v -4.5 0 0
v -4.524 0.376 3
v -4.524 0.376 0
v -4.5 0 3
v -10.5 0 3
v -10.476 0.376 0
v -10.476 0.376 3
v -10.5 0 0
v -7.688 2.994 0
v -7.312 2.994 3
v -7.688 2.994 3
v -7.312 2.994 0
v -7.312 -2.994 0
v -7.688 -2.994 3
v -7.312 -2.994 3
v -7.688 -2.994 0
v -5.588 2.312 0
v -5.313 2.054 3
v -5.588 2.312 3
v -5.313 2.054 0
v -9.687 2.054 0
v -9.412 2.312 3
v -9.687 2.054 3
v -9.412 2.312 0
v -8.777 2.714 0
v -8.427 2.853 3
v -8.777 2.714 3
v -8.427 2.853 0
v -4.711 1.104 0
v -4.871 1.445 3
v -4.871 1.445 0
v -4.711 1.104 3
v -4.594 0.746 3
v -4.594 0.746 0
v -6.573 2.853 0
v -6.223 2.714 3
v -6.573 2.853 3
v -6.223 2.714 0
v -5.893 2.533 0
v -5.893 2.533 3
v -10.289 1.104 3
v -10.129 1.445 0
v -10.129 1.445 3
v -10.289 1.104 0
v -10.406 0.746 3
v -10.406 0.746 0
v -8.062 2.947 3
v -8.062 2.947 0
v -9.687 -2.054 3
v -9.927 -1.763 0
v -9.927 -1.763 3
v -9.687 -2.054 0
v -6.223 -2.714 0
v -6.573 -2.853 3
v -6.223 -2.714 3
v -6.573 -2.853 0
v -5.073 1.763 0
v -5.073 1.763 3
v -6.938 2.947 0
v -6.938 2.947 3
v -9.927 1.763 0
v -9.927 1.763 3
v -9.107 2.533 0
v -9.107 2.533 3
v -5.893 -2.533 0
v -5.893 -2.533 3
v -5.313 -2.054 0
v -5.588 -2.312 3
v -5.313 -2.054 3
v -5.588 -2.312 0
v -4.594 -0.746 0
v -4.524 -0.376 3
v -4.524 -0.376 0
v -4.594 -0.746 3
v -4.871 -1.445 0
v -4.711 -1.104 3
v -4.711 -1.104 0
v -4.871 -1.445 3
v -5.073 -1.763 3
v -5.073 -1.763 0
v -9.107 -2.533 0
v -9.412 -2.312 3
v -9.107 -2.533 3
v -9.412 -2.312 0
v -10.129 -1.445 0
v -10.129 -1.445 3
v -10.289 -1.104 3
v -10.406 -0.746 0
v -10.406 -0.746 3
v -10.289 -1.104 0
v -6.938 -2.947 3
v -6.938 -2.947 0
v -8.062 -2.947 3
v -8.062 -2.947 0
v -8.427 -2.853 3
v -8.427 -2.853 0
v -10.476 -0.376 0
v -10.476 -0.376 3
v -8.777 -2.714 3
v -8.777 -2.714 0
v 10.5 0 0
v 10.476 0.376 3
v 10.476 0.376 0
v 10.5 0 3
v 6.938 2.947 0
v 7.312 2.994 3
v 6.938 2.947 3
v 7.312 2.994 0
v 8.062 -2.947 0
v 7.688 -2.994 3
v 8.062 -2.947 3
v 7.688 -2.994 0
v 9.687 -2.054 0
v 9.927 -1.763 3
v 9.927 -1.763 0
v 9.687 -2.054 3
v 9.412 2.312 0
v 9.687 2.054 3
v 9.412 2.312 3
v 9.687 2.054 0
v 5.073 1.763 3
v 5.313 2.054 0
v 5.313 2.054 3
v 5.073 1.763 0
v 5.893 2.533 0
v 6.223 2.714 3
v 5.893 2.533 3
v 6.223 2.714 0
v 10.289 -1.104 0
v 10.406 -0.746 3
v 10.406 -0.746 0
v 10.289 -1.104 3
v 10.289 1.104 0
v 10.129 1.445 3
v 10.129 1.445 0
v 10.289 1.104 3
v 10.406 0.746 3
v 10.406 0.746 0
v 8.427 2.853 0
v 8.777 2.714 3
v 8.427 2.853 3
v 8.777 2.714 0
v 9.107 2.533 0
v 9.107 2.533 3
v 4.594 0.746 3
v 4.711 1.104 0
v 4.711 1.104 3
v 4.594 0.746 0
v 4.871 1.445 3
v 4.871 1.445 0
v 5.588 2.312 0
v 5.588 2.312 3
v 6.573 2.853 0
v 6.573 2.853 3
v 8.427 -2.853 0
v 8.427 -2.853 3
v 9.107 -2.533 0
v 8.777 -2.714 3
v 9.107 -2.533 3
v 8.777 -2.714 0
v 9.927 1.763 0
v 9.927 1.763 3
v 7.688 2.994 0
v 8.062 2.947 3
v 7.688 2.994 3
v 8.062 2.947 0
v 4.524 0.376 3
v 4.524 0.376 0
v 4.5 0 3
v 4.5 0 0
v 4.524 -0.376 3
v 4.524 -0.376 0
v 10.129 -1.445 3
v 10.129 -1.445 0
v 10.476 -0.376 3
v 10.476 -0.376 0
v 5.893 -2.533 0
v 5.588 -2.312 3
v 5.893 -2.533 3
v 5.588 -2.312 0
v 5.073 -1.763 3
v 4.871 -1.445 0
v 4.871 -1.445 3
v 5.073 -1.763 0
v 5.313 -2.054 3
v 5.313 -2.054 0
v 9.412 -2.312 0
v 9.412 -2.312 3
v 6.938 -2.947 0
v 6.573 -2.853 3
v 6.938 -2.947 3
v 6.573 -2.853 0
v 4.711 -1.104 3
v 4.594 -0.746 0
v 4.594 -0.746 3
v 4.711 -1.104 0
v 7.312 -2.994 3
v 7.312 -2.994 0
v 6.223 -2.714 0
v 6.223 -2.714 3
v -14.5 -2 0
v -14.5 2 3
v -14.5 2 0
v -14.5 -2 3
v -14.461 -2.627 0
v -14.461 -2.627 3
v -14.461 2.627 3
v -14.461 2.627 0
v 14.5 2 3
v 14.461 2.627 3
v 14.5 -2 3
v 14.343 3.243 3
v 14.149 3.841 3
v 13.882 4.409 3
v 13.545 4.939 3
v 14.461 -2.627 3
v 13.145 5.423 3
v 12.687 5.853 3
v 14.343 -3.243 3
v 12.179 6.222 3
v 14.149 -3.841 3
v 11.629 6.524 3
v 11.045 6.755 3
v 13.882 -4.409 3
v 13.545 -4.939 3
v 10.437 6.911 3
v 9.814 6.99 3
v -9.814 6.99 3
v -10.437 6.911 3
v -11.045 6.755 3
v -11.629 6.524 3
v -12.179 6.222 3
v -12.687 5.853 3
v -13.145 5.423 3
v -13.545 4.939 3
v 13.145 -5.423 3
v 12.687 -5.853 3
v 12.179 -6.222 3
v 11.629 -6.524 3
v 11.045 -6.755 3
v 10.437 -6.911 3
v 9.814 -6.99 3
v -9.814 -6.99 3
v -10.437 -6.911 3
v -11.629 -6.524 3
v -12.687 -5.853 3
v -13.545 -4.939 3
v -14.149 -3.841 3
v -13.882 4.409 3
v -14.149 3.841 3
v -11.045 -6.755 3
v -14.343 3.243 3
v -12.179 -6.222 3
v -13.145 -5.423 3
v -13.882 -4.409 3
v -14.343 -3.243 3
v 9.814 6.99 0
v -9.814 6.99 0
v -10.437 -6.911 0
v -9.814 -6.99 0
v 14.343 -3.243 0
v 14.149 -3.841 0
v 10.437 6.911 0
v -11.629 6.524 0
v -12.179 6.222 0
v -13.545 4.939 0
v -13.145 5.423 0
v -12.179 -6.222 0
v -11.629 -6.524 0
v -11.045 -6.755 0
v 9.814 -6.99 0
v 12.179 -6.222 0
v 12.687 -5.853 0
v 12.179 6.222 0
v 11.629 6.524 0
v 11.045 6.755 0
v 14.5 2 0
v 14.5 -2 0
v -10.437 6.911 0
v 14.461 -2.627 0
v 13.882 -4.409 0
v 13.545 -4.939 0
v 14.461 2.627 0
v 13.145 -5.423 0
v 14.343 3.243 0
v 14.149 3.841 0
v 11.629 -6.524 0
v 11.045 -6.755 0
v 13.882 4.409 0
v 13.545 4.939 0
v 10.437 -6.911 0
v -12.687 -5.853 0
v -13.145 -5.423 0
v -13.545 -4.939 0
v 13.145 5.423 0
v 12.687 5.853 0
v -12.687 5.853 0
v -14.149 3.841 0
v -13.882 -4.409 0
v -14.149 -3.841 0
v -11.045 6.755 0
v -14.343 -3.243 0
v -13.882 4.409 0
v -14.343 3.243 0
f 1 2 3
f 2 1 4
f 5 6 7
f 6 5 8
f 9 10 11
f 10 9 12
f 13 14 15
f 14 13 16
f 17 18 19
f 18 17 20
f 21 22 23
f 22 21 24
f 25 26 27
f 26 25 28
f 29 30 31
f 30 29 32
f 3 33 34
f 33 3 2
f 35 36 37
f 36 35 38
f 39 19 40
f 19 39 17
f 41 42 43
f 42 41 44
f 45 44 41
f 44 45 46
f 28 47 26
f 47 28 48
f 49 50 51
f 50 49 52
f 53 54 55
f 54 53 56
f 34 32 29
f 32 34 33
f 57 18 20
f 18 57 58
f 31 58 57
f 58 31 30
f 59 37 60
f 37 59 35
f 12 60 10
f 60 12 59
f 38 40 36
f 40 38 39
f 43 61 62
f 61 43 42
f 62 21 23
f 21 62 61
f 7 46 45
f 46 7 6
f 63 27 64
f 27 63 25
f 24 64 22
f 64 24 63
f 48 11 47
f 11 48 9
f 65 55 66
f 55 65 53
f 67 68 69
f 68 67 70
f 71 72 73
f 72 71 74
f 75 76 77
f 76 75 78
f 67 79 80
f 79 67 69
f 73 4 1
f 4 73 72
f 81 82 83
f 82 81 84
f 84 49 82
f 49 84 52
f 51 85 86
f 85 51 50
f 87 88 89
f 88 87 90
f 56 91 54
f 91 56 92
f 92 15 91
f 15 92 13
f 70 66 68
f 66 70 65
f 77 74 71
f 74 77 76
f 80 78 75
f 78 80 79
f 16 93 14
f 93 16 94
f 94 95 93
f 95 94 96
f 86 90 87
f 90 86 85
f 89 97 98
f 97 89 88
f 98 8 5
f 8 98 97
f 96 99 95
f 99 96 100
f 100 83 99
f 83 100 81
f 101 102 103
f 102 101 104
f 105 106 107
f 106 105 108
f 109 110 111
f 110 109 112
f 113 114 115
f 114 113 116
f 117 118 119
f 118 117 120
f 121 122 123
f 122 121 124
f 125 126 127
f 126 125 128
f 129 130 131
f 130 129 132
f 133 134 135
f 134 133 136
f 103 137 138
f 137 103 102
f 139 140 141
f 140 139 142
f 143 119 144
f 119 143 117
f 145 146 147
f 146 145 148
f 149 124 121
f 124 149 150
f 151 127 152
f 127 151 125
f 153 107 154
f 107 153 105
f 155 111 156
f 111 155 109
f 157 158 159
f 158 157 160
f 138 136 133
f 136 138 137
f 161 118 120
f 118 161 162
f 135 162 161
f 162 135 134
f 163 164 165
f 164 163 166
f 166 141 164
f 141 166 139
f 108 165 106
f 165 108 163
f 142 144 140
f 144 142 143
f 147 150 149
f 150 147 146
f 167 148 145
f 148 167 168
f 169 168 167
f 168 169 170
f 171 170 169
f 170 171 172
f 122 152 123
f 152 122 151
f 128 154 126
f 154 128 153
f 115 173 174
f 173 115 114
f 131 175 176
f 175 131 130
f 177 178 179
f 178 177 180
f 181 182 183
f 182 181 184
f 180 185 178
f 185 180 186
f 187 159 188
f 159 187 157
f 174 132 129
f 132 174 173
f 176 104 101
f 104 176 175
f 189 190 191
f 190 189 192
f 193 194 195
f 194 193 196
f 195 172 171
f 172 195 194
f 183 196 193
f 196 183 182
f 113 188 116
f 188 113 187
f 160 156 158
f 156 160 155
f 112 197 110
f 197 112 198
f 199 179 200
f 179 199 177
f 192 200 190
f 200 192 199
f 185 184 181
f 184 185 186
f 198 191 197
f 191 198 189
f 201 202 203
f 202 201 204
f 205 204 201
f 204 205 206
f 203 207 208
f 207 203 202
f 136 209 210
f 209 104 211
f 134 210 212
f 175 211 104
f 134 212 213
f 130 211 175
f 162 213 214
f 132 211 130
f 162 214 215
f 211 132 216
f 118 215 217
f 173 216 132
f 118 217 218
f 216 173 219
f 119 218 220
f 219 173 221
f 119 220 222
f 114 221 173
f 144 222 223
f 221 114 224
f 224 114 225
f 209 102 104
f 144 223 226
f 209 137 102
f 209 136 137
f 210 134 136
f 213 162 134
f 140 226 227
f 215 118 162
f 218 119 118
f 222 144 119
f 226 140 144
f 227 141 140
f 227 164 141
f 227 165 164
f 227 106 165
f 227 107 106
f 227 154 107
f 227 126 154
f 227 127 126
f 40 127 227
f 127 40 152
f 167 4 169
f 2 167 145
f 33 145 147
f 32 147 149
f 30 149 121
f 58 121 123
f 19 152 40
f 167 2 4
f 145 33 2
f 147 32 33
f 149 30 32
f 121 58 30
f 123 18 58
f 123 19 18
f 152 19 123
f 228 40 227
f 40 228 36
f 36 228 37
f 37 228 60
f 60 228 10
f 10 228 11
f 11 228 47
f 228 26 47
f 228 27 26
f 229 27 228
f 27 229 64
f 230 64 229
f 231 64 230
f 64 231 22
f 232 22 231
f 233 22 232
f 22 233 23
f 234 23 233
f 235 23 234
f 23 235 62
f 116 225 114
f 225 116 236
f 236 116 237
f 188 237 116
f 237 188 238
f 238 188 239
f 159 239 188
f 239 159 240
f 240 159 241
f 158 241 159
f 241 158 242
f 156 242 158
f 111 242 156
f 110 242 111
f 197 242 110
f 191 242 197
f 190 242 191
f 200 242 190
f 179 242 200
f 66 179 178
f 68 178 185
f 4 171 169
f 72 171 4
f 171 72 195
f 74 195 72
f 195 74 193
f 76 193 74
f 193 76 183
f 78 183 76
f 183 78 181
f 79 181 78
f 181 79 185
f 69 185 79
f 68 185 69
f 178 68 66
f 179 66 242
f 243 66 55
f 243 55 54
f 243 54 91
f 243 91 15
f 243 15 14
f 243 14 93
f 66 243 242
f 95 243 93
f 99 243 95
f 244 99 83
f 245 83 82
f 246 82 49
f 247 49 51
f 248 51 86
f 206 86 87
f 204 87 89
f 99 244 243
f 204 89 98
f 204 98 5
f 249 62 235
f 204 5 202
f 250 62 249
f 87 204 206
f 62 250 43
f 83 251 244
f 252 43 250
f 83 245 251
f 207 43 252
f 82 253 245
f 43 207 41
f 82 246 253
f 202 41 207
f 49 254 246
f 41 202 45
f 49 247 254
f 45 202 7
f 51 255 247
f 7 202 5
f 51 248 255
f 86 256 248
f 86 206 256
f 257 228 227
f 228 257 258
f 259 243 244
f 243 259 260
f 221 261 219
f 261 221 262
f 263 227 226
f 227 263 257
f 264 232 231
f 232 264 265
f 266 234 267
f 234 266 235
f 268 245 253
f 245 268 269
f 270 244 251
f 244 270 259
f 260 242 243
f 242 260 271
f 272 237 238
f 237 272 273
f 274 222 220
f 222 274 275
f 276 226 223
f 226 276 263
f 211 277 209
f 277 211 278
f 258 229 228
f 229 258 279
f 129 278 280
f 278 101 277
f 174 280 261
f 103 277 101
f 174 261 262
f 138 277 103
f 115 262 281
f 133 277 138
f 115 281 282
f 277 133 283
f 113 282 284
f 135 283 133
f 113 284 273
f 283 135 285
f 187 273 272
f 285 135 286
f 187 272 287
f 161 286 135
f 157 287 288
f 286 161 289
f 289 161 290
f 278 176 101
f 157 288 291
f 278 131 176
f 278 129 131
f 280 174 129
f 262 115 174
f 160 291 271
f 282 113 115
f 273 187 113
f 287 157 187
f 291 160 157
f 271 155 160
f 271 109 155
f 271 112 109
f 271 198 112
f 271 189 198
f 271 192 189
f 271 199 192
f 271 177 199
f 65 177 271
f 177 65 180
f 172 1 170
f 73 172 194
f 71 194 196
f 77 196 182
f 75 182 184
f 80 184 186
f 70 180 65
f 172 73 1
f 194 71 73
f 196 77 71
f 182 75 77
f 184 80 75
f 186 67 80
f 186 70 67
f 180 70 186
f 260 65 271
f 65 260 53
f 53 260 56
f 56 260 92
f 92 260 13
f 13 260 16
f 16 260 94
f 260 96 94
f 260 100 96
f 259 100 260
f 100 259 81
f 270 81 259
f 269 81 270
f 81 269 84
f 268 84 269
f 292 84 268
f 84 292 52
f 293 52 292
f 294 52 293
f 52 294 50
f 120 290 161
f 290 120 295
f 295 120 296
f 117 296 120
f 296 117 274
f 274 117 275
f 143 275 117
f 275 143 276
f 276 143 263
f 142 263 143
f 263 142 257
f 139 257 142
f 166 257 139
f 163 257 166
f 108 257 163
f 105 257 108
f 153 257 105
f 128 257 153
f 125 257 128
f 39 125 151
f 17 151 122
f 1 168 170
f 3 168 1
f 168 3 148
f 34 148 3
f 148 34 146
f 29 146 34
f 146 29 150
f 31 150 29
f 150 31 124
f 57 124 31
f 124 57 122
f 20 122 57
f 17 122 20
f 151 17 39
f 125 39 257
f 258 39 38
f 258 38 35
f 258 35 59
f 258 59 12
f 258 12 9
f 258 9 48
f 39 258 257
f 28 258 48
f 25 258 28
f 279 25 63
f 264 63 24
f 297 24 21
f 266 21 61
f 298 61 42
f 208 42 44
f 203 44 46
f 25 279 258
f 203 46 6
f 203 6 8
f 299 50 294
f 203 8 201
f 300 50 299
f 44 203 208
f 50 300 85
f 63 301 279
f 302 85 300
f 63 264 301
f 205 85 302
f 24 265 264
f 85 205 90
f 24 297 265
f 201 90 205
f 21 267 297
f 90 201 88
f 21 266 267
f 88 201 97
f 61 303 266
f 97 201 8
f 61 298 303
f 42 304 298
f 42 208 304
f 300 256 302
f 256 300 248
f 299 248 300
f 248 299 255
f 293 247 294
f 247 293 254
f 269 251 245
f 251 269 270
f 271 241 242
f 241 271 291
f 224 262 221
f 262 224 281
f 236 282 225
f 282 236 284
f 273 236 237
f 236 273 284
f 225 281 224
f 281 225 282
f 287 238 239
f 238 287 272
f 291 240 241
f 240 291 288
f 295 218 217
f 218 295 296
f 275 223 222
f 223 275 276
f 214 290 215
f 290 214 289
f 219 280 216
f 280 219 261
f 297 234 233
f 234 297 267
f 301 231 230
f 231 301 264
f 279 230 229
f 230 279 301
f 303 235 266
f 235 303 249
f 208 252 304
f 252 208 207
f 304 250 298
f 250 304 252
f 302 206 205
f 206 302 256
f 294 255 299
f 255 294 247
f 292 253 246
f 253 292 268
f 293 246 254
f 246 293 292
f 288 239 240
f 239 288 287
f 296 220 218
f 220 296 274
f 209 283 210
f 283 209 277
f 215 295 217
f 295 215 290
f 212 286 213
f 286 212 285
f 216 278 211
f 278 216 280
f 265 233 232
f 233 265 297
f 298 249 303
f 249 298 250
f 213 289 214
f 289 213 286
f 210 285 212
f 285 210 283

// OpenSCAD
$fn = 50;


difference() {
	union() {
		translate(v = [0, 0, 0]) {
			rotate(a = [0, 0, 0]) {
				#hull() {
					translate(v = [-9.5000000000, 2.0000000000, 0]) {
						rotate(a = [0, 0, 0]) {
							translate(v = [0, 0, 0]) {
								rotate(a = [0, 0, 0]) {
									cylinder(h = 3, r = 5);
								}
							}
						}
					}
					translate(v = [9.5000000000, 2.0000000000, 0]) {
						rotate(a = [0, 0, 0]) {
							translate(v = [0, 0, 0]) {
								rotate(a = [0, 0, 0]) {
									cylinder(h = 3, r = 5);
								}
							}
						}
					}
					translate(v = [-9.5000000000, -2.0000000000, 0]) {
						rotate(a = [0, 0, 0]) {
							translate(v = [0, 0, 0]) {
								rotate(a = [0, 0, 0]) {
									cylinder(h = 3, r = 5);
								}
							}
						}
					}
					translate(v = [9.5000000000, -2.0000000000, 0]) {
						rotate(a = [0, 0, 0]) {
							translate(v = [0, 0, 0]) {
								rotate(a = [0, 0, 0]) {
									cylinder(h = 3, r = 5);
								}
							}
						}
					}
				}
			}
		}
	}
	union() {
		translate(v = [-7.5000000000, 0.0000000000, 0]) {
			rotate(a = [0, 0, 0]) {
				translate(v = [0, 0, -50]) {
					rotate(a = [0, 0, 0]) {
						cylinder(h = 100, r = 3.0000000000);
					}
				}
			}
		}
		translate(v = [7.5000000000, 0.0000000000, 0]) {
			rotate(a = [0, 0, 0]) {
				translate(v = [0, 0, -50]) {
					rotate(a = [0, 0, 0]) {
						cylinder(h = 100, r = 3.0000000000);
					}
				}
			}
		}
	}
}
